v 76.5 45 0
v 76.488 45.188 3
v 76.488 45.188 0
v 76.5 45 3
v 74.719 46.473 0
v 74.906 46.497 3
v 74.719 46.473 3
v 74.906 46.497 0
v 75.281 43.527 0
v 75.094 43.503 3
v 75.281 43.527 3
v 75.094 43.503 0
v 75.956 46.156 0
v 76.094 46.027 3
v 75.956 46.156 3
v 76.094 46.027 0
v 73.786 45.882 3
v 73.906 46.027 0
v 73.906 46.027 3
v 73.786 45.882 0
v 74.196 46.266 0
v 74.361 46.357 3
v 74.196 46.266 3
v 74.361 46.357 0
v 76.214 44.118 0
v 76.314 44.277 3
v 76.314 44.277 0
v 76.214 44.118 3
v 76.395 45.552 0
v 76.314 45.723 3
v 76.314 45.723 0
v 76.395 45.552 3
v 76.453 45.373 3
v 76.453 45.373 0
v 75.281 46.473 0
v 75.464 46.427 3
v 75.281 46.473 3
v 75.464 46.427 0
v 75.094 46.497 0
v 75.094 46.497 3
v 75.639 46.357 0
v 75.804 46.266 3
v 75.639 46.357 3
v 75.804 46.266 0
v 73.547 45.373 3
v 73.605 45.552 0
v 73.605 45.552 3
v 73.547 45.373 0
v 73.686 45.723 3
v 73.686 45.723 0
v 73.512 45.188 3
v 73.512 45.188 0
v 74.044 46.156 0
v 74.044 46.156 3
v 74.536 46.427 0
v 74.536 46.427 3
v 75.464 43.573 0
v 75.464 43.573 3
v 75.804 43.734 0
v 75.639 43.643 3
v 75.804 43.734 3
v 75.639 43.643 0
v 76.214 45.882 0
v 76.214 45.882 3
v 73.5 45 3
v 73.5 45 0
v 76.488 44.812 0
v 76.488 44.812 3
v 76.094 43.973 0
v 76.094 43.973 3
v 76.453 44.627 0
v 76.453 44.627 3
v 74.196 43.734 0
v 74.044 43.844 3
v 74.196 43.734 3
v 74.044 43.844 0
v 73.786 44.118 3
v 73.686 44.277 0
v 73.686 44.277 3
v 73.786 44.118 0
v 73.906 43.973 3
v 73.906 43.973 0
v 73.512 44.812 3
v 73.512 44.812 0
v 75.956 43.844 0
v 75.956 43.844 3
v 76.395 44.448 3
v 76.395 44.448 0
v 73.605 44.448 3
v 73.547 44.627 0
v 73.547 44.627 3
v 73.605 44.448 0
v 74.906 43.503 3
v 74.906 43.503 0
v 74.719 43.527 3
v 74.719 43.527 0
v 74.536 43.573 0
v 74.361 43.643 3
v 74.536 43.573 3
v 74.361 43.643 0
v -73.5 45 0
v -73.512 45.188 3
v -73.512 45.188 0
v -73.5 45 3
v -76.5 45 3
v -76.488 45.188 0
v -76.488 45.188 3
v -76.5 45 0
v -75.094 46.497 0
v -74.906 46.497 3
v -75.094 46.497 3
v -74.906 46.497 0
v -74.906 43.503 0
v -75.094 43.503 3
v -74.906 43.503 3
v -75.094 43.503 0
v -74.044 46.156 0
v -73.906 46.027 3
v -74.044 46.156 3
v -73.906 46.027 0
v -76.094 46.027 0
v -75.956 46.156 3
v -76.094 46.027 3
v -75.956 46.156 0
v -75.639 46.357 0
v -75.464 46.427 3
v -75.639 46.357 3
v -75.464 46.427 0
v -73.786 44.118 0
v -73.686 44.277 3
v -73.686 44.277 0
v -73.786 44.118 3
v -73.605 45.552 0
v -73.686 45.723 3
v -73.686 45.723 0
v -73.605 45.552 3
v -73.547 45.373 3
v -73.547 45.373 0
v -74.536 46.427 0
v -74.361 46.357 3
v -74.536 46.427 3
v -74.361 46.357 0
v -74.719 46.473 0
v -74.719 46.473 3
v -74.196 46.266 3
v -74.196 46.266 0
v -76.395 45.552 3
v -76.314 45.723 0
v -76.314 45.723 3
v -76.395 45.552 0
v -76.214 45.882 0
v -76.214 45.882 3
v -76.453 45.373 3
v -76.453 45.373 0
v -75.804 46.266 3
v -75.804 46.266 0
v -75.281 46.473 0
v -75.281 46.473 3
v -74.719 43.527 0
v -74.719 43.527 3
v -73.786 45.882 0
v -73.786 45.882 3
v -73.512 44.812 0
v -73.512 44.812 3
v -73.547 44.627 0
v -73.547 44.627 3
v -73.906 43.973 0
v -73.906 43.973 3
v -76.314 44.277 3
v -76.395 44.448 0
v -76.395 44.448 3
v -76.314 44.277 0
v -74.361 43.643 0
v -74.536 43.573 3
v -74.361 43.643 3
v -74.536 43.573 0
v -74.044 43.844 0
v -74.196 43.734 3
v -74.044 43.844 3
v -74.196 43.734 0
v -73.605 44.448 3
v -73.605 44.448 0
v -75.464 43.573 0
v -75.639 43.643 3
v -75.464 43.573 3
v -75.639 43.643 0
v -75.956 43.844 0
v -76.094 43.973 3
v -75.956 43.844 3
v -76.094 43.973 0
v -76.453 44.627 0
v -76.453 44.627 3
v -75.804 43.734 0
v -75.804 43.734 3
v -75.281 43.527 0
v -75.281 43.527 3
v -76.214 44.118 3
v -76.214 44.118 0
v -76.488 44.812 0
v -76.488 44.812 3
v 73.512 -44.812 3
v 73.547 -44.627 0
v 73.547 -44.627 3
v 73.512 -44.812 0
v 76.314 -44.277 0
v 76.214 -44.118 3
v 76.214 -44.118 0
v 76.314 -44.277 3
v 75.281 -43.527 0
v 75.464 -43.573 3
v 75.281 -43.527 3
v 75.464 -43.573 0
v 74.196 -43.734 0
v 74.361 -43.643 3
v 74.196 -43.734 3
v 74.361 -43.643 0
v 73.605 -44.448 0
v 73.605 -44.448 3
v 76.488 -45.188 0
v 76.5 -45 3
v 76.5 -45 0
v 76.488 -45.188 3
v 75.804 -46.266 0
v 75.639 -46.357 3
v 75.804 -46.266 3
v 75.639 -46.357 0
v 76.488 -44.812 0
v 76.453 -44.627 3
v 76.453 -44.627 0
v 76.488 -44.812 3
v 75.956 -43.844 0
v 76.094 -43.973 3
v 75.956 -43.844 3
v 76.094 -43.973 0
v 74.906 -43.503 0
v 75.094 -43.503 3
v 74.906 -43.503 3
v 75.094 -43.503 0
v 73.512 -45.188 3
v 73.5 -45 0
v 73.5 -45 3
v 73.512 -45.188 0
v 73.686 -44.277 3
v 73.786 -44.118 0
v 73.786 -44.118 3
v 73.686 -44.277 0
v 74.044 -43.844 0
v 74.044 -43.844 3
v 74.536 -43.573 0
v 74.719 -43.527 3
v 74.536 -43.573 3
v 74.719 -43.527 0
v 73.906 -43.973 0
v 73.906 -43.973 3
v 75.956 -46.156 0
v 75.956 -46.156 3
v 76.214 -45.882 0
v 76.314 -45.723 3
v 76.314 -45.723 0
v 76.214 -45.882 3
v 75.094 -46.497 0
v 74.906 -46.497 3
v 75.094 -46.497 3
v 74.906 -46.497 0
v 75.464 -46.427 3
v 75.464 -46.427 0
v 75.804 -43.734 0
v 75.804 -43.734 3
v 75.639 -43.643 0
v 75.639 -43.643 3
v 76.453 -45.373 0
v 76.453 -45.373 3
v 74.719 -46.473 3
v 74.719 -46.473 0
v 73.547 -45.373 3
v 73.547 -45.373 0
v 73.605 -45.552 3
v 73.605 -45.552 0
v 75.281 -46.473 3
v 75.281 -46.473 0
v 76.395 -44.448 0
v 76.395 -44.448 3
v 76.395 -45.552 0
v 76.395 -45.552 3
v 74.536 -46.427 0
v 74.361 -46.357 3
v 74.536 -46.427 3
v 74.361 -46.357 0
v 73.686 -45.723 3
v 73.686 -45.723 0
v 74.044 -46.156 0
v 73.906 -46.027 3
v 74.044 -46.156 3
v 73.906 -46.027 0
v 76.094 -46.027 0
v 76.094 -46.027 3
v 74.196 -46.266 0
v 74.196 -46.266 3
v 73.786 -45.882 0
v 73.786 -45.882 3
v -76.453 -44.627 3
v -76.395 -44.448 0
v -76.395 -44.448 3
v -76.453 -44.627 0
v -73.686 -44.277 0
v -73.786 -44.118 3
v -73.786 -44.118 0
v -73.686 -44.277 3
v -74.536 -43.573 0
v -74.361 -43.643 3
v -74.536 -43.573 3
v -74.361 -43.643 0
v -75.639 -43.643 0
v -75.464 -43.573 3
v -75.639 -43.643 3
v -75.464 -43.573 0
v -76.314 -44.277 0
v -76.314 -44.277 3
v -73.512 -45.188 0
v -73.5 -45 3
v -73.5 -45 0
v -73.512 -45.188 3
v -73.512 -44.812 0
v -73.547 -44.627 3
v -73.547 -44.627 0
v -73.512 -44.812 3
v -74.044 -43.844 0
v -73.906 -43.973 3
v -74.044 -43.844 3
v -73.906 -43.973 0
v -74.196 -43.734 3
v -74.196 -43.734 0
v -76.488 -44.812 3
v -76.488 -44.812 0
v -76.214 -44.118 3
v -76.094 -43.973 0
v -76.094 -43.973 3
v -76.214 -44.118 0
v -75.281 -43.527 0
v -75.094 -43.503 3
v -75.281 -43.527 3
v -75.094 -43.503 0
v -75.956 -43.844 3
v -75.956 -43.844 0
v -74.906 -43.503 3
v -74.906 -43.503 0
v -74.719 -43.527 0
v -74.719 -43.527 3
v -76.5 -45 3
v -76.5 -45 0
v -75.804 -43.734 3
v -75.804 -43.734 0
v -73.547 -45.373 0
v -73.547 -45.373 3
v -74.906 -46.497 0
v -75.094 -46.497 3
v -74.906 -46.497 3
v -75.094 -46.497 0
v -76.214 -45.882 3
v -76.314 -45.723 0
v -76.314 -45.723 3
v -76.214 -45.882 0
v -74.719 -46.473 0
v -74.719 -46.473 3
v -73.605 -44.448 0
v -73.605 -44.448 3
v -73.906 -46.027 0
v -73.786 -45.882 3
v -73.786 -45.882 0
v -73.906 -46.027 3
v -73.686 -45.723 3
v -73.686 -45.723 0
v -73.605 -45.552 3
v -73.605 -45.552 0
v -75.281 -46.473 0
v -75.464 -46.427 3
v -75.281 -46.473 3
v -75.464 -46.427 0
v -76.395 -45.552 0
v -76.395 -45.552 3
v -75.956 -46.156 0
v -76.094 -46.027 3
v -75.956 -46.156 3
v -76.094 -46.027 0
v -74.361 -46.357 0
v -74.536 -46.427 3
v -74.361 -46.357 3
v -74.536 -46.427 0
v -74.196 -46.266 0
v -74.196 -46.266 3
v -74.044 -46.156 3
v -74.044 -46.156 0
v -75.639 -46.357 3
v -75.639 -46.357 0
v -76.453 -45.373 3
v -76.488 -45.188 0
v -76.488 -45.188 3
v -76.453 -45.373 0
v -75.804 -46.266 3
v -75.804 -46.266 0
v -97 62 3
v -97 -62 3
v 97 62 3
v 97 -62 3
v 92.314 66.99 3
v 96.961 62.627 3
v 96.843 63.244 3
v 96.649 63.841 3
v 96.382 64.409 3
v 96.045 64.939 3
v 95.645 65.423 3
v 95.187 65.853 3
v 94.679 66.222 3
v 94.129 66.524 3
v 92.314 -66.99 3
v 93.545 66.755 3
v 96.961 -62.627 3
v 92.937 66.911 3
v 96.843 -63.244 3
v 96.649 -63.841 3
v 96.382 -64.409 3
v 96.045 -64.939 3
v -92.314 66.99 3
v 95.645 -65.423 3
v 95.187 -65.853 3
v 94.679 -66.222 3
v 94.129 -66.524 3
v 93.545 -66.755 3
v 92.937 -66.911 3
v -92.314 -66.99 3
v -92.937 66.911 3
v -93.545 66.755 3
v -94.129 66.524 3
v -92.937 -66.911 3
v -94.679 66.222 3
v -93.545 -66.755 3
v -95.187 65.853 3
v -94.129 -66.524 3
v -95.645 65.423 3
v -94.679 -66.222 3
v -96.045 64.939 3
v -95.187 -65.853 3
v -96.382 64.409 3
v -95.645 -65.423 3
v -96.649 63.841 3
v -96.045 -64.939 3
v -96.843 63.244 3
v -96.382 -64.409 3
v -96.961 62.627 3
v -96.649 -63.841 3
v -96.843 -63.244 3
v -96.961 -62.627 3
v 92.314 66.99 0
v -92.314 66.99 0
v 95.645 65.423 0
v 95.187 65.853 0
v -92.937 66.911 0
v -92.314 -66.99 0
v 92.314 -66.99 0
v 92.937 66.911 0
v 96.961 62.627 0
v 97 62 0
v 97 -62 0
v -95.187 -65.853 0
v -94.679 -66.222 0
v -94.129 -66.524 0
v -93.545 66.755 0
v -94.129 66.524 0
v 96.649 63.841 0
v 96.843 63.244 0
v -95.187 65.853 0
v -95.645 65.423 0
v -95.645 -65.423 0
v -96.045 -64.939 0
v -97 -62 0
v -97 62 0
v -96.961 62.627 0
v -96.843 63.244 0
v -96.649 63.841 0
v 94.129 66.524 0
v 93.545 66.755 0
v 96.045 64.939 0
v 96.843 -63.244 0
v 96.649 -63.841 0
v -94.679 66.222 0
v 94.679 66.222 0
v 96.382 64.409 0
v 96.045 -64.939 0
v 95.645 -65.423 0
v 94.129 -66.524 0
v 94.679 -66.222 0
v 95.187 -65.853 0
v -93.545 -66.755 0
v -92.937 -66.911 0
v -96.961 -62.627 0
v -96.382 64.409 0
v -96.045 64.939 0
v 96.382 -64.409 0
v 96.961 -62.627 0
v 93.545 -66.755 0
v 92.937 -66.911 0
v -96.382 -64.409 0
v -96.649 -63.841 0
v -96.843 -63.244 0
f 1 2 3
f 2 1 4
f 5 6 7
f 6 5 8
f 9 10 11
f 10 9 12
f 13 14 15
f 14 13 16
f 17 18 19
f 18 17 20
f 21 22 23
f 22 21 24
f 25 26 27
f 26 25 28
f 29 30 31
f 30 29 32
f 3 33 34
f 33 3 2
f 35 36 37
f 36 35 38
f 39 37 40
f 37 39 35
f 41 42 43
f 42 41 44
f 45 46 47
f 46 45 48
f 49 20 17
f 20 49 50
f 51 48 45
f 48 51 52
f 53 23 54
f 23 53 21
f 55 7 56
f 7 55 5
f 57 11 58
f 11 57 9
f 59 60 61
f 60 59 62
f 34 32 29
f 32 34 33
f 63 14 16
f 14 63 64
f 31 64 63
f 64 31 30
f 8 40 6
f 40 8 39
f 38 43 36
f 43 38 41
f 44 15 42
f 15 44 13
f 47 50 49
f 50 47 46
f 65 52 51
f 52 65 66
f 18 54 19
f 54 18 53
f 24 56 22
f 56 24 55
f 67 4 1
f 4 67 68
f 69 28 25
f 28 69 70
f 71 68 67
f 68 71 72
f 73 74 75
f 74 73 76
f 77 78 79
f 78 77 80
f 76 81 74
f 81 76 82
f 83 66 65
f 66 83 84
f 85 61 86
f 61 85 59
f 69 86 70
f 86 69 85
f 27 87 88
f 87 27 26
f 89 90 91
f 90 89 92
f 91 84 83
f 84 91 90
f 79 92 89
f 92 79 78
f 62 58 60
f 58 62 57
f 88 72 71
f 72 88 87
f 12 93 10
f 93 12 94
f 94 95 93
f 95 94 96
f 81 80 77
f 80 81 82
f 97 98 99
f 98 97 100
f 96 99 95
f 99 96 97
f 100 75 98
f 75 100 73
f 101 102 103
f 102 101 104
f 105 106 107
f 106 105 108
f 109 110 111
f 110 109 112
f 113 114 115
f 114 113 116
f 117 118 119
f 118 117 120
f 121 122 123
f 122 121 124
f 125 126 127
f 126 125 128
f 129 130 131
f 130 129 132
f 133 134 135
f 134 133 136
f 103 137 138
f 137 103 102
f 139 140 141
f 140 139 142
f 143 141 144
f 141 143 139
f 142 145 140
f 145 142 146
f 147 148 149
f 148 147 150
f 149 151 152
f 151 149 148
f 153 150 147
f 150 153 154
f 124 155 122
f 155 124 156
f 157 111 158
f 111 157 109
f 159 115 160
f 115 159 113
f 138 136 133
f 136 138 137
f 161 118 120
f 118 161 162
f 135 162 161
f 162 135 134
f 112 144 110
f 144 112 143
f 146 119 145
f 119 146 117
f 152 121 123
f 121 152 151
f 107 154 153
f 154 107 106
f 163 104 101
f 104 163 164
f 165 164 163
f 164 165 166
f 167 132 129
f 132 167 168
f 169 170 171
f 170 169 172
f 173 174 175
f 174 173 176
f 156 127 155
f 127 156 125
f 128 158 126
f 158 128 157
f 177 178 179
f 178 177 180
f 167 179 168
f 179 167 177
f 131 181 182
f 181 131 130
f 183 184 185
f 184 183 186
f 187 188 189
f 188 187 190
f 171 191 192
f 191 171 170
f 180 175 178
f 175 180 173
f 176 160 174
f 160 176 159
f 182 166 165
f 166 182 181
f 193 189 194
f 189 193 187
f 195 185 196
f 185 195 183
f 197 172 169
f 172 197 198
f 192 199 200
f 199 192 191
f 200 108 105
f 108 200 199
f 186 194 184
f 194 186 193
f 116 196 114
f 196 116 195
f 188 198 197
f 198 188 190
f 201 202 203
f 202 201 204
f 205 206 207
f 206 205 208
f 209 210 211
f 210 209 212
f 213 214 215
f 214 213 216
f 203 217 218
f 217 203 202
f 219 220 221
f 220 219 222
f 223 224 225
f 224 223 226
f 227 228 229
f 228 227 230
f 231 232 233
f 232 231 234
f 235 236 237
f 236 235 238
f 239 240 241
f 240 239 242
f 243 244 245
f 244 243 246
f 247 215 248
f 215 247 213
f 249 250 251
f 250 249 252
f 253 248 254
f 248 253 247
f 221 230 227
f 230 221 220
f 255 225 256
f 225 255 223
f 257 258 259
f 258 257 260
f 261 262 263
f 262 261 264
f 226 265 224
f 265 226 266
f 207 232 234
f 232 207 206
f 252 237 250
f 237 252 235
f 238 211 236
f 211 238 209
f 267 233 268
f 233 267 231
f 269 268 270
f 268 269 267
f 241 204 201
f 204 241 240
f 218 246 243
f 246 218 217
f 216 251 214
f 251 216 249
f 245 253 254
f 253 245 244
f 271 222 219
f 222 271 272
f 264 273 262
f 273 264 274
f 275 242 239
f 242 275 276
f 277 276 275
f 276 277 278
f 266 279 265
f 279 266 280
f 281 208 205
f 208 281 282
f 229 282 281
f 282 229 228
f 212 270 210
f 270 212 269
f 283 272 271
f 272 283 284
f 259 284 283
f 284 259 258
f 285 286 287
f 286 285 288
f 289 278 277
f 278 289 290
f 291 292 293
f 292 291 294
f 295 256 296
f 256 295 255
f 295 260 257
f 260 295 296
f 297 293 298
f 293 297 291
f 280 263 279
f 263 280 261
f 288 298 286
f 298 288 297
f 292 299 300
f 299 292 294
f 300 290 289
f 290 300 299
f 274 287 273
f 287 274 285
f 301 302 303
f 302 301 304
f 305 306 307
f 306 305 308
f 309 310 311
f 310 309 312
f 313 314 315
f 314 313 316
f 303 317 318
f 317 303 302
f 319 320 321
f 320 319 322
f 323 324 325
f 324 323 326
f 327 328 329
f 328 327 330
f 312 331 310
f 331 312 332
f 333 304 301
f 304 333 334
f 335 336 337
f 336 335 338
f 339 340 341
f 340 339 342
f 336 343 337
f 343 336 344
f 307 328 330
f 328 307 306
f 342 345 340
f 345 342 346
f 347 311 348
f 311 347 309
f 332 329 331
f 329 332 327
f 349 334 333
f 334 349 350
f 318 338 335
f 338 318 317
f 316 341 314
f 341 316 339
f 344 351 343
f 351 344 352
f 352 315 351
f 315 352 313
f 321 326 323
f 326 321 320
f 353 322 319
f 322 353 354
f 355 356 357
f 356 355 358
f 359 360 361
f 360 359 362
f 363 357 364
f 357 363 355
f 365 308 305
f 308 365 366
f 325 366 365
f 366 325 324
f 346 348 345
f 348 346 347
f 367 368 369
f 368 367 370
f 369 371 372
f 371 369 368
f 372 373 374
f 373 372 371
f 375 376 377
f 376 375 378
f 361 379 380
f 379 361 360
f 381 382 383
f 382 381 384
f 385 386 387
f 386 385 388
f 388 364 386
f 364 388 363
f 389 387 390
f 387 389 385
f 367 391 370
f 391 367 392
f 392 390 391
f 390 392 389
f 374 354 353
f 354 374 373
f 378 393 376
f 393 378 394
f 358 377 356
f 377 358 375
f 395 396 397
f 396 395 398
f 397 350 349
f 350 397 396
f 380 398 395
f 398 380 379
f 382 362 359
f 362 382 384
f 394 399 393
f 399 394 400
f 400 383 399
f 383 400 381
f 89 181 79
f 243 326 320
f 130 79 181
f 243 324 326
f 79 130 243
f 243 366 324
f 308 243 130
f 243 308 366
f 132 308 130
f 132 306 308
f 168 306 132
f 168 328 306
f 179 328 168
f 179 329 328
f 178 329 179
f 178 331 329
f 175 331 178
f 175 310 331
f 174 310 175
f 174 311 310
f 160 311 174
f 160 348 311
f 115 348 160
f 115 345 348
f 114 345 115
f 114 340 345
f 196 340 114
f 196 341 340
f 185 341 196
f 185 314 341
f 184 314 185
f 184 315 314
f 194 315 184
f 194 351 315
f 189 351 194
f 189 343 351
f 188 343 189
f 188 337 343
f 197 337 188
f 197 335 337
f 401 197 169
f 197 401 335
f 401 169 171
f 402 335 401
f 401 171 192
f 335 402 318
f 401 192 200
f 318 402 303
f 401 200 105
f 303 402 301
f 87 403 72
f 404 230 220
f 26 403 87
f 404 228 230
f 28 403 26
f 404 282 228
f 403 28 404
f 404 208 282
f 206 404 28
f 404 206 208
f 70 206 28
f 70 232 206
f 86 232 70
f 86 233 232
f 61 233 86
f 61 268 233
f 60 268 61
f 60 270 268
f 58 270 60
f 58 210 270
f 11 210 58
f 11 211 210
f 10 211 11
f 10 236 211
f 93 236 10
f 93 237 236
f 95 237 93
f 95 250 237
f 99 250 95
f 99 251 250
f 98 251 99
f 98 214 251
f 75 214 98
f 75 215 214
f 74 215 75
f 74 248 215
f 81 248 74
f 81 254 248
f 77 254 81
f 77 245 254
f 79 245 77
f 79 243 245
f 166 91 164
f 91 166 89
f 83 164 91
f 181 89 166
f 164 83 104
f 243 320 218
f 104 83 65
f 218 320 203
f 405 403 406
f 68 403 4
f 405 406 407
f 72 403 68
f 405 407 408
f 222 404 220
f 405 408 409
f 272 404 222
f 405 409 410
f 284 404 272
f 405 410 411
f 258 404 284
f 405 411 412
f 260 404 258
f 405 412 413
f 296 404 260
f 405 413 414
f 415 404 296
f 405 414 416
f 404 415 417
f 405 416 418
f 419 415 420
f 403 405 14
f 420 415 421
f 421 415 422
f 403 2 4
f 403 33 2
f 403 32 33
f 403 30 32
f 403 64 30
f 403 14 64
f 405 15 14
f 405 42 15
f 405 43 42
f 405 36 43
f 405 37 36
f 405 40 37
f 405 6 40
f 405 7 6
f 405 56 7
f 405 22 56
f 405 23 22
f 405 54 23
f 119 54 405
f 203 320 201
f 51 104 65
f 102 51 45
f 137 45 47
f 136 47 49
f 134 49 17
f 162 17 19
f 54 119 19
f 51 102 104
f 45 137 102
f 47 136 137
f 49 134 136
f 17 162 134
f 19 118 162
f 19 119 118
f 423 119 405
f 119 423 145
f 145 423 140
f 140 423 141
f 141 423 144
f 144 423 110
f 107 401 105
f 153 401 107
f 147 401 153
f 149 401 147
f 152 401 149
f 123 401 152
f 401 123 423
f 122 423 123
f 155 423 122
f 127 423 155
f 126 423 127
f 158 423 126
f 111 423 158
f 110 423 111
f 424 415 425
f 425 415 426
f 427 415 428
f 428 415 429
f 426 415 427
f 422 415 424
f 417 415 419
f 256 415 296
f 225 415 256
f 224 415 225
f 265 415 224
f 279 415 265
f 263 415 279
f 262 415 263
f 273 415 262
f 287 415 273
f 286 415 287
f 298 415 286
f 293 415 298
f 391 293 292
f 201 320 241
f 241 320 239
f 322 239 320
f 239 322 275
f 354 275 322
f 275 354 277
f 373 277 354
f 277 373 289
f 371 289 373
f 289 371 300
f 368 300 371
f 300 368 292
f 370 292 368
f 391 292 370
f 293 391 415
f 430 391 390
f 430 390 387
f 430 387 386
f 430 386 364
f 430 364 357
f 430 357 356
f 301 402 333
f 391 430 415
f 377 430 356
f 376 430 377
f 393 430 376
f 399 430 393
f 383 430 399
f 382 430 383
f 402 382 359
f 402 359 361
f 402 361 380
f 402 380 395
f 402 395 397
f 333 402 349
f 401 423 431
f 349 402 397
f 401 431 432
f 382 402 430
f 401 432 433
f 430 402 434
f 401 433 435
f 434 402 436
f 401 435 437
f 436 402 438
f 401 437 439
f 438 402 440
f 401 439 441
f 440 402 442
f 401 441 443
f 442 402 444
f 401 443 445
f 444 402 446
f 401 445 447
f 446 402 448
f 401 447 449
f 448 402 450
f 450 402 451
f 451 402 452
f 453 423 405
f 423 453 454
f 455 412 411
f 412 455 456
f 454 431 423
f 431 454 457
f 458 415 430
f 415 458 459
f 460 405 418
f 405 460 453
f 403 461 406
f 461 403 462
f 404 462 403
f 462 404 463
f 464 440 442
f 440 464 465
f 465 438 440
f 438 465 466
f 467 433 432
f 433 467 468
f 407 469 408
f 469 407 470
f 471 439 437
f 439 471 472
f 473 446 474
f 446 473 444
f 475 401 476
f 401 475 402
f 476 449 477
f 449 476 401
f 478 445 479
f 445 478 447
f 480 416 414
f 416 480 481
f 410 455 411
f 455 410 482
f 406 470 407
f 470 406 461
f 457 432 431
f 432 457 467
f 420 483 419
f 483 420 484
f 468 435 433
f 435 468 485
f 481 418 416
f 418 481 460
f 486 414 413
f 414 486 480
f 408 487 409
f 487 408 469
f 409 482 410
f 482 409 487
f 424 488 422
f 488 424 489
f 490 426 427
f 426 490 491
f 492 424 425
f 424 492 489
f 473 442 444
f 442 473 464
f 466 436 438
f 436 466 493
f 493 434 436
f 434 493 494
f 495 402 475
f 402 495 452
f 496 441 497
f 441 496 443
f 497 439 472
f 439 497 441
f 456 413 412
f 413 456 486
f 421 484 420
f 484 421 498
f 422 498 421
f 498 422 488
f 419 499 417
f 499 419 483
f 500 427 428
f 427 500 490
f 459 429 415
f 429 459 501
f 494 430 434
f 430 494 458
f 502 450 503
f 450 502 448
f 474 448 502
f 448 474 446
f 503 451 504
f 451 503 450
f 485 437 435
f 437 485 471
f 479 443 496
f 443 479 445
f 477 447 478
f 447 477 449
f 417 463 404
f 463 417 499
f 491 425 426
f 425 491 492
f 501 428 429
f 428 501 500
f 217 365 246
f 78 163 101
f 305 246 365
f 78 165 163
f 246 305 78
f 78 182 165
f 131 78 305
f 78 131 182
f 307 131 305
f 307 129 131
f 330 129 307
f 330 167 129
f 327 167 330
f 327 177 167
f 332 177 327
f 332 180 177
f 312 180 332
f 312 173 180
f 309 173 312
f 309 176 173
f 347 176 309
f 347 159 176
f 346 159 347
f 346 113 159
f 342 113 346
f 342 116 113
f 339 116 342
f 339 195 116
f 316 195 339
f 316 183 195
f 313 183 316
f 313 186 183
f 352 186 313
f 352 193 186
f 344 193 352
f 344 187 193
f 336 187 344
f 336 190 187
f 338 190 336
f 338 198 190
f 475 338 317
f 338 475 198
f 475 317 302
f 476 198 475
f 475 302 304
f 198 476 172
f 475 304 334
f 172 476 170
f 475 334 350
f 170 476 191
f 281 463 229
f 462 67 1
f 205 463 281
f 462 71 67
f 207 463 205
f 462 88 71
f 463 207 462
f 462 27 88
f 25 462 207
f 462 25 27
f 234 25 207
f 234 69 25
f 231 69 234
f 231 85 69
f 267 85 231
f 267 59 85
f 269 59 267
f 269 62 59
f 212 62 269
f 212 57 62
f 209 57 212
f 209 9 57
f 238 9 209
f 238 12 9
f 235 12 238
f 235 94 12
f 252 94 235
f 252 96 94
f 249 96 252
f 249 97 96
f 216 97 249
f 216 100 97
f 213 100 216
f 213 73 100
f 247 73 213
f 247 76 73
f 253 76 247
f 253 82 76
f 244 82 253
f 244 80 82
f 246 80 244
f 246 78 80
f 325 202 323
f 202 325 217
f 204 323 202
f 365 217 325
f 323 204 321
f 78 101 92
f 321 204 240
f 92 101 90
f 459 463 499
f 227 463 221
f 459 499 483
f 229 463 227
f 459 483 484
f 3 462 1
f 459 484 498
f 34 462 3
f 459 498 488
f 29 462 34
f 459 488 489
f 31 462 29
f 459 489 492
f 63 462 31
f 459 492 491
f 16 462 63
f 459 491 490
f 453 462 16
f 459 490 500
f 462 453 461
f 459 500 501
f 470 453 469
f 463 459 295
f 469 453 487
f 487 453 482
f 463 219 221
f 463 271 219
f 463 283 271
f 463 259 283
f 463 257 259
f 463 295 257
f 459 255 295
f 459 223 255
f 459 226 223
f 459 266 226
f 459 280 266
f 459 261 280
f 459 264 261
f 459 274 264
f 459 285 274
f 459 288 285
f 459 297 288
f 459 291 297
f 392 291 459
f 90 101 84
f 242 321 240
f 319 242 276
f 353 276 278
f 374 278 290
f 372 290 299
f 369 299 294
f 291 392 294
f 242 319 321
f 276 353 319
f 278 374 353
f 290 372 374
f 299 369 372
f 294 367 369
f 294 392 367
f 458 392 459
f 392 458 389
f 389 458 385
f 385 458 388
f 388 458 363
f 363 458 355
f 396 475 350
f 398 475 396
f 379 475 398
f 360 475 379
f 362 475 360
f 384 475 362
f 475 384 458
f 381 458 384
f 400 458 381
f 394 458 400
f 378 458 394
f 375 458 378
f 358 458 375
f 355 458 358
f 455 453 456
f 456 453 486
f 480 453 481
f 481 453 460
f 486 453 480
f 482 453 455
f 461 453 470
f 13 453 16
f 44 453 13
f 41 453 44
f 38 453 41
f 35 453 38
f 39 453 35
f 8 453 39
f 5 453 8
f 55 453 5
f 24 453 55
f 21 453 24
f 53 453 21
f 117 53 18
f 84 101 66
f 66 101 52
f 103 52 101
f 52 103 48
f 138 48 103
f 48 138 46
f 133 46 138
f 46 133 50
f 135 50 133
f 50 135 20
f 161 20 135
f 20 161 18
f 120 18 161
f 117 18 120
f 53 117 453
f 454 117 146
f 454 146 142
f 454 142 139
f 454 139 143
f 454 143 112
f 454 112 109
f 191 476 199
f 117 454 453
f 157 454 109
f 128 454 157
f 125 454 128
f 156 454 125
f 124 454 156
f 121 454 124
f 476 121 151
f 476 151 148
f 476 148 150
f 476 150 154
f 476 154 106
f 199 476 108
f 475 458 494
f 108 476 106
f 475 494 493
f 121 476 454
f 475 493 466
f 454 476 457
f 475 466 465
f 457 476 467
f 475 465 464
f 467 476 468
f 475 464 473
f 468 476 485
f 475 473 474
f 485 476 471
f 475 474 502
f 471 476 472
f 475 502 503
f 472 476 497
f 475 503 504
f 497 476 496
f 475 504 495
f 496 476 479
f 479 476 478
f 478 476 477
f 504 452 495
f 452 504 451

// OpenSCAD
$fn = 50;


difference() {
	union() {
		translate(v = [0, 0, 0]) {
			rotate(a = [0, 0, 0]) {
				hull() {
					translate(v = [-92.0000000000, 62.0000000000, 0]) {
						rotate(a = [0, 0, 0]) {
							translate(v = [0, 0, 0]) {
								rotate(a = [0, 0, 0]) {
									cylinder(h = 3, r = 5);
								}
							}
						}
					}
					translate(v = [92.0000000000, 62.0000000000, 0]) {
						rotate(a = [0, 0, 0]) {
							translate(v = [0, 0, 0]) {
								rotate(a = [0, 0, 0]) {
									cylinder(h = 3, r = 5);
								}
							}
						}
					}
					translate(v = [-92.0000000000, -62.0000000000, 0]) {
						rotate(a = [0, 0, 0]) {
							translate(v = [0, 0, 0]) {
								rotate(a = [0, 0, 0]) {
									cylinder(h = 3, r = 5);
								}
							}
						}
					}
					translate(v = [92.0000000000, -62.0000000000, 0]) {
						rotate(a = [0, 0, 0]) {
							translate(v = [0, 0, 0]) {
								rotate(a = [0, 0, 0]) {
									cylinder(h = 3, r = 5);
								}
							}
						}
					}
				}
			}
		}
	}
	union() {
		translate(v = [75.0000000000, 45.0000000000, -125.0000000000]) {
			rotate(a = [0, 0, 0]) {
				cylinder(h = 250, r = 1.5000000000);
			}
		}
		translate(v = [-75.0000000000, 45.0000000000, -125.0000000000]) {
			rotate(a = [0, 0, 0]) {
				cylinder(h = 250, r = 1.5000000000);
			}
		}
		translate(v = [75.0000000000, -45.0000000000, -125.0000000000]) {
			rotate(a = [0, 0, 0]) {
				cylinder(h = 250, r = 1.5000000000);
			}
		}
		translate(v = [-75.0000000000, -45.0000000000, -125.0000000000]) {
			rotate(a = [0, 0, 0]) {
				cylinder(h = 250, r = 1.5000000000);
			}
		}
	}
}
